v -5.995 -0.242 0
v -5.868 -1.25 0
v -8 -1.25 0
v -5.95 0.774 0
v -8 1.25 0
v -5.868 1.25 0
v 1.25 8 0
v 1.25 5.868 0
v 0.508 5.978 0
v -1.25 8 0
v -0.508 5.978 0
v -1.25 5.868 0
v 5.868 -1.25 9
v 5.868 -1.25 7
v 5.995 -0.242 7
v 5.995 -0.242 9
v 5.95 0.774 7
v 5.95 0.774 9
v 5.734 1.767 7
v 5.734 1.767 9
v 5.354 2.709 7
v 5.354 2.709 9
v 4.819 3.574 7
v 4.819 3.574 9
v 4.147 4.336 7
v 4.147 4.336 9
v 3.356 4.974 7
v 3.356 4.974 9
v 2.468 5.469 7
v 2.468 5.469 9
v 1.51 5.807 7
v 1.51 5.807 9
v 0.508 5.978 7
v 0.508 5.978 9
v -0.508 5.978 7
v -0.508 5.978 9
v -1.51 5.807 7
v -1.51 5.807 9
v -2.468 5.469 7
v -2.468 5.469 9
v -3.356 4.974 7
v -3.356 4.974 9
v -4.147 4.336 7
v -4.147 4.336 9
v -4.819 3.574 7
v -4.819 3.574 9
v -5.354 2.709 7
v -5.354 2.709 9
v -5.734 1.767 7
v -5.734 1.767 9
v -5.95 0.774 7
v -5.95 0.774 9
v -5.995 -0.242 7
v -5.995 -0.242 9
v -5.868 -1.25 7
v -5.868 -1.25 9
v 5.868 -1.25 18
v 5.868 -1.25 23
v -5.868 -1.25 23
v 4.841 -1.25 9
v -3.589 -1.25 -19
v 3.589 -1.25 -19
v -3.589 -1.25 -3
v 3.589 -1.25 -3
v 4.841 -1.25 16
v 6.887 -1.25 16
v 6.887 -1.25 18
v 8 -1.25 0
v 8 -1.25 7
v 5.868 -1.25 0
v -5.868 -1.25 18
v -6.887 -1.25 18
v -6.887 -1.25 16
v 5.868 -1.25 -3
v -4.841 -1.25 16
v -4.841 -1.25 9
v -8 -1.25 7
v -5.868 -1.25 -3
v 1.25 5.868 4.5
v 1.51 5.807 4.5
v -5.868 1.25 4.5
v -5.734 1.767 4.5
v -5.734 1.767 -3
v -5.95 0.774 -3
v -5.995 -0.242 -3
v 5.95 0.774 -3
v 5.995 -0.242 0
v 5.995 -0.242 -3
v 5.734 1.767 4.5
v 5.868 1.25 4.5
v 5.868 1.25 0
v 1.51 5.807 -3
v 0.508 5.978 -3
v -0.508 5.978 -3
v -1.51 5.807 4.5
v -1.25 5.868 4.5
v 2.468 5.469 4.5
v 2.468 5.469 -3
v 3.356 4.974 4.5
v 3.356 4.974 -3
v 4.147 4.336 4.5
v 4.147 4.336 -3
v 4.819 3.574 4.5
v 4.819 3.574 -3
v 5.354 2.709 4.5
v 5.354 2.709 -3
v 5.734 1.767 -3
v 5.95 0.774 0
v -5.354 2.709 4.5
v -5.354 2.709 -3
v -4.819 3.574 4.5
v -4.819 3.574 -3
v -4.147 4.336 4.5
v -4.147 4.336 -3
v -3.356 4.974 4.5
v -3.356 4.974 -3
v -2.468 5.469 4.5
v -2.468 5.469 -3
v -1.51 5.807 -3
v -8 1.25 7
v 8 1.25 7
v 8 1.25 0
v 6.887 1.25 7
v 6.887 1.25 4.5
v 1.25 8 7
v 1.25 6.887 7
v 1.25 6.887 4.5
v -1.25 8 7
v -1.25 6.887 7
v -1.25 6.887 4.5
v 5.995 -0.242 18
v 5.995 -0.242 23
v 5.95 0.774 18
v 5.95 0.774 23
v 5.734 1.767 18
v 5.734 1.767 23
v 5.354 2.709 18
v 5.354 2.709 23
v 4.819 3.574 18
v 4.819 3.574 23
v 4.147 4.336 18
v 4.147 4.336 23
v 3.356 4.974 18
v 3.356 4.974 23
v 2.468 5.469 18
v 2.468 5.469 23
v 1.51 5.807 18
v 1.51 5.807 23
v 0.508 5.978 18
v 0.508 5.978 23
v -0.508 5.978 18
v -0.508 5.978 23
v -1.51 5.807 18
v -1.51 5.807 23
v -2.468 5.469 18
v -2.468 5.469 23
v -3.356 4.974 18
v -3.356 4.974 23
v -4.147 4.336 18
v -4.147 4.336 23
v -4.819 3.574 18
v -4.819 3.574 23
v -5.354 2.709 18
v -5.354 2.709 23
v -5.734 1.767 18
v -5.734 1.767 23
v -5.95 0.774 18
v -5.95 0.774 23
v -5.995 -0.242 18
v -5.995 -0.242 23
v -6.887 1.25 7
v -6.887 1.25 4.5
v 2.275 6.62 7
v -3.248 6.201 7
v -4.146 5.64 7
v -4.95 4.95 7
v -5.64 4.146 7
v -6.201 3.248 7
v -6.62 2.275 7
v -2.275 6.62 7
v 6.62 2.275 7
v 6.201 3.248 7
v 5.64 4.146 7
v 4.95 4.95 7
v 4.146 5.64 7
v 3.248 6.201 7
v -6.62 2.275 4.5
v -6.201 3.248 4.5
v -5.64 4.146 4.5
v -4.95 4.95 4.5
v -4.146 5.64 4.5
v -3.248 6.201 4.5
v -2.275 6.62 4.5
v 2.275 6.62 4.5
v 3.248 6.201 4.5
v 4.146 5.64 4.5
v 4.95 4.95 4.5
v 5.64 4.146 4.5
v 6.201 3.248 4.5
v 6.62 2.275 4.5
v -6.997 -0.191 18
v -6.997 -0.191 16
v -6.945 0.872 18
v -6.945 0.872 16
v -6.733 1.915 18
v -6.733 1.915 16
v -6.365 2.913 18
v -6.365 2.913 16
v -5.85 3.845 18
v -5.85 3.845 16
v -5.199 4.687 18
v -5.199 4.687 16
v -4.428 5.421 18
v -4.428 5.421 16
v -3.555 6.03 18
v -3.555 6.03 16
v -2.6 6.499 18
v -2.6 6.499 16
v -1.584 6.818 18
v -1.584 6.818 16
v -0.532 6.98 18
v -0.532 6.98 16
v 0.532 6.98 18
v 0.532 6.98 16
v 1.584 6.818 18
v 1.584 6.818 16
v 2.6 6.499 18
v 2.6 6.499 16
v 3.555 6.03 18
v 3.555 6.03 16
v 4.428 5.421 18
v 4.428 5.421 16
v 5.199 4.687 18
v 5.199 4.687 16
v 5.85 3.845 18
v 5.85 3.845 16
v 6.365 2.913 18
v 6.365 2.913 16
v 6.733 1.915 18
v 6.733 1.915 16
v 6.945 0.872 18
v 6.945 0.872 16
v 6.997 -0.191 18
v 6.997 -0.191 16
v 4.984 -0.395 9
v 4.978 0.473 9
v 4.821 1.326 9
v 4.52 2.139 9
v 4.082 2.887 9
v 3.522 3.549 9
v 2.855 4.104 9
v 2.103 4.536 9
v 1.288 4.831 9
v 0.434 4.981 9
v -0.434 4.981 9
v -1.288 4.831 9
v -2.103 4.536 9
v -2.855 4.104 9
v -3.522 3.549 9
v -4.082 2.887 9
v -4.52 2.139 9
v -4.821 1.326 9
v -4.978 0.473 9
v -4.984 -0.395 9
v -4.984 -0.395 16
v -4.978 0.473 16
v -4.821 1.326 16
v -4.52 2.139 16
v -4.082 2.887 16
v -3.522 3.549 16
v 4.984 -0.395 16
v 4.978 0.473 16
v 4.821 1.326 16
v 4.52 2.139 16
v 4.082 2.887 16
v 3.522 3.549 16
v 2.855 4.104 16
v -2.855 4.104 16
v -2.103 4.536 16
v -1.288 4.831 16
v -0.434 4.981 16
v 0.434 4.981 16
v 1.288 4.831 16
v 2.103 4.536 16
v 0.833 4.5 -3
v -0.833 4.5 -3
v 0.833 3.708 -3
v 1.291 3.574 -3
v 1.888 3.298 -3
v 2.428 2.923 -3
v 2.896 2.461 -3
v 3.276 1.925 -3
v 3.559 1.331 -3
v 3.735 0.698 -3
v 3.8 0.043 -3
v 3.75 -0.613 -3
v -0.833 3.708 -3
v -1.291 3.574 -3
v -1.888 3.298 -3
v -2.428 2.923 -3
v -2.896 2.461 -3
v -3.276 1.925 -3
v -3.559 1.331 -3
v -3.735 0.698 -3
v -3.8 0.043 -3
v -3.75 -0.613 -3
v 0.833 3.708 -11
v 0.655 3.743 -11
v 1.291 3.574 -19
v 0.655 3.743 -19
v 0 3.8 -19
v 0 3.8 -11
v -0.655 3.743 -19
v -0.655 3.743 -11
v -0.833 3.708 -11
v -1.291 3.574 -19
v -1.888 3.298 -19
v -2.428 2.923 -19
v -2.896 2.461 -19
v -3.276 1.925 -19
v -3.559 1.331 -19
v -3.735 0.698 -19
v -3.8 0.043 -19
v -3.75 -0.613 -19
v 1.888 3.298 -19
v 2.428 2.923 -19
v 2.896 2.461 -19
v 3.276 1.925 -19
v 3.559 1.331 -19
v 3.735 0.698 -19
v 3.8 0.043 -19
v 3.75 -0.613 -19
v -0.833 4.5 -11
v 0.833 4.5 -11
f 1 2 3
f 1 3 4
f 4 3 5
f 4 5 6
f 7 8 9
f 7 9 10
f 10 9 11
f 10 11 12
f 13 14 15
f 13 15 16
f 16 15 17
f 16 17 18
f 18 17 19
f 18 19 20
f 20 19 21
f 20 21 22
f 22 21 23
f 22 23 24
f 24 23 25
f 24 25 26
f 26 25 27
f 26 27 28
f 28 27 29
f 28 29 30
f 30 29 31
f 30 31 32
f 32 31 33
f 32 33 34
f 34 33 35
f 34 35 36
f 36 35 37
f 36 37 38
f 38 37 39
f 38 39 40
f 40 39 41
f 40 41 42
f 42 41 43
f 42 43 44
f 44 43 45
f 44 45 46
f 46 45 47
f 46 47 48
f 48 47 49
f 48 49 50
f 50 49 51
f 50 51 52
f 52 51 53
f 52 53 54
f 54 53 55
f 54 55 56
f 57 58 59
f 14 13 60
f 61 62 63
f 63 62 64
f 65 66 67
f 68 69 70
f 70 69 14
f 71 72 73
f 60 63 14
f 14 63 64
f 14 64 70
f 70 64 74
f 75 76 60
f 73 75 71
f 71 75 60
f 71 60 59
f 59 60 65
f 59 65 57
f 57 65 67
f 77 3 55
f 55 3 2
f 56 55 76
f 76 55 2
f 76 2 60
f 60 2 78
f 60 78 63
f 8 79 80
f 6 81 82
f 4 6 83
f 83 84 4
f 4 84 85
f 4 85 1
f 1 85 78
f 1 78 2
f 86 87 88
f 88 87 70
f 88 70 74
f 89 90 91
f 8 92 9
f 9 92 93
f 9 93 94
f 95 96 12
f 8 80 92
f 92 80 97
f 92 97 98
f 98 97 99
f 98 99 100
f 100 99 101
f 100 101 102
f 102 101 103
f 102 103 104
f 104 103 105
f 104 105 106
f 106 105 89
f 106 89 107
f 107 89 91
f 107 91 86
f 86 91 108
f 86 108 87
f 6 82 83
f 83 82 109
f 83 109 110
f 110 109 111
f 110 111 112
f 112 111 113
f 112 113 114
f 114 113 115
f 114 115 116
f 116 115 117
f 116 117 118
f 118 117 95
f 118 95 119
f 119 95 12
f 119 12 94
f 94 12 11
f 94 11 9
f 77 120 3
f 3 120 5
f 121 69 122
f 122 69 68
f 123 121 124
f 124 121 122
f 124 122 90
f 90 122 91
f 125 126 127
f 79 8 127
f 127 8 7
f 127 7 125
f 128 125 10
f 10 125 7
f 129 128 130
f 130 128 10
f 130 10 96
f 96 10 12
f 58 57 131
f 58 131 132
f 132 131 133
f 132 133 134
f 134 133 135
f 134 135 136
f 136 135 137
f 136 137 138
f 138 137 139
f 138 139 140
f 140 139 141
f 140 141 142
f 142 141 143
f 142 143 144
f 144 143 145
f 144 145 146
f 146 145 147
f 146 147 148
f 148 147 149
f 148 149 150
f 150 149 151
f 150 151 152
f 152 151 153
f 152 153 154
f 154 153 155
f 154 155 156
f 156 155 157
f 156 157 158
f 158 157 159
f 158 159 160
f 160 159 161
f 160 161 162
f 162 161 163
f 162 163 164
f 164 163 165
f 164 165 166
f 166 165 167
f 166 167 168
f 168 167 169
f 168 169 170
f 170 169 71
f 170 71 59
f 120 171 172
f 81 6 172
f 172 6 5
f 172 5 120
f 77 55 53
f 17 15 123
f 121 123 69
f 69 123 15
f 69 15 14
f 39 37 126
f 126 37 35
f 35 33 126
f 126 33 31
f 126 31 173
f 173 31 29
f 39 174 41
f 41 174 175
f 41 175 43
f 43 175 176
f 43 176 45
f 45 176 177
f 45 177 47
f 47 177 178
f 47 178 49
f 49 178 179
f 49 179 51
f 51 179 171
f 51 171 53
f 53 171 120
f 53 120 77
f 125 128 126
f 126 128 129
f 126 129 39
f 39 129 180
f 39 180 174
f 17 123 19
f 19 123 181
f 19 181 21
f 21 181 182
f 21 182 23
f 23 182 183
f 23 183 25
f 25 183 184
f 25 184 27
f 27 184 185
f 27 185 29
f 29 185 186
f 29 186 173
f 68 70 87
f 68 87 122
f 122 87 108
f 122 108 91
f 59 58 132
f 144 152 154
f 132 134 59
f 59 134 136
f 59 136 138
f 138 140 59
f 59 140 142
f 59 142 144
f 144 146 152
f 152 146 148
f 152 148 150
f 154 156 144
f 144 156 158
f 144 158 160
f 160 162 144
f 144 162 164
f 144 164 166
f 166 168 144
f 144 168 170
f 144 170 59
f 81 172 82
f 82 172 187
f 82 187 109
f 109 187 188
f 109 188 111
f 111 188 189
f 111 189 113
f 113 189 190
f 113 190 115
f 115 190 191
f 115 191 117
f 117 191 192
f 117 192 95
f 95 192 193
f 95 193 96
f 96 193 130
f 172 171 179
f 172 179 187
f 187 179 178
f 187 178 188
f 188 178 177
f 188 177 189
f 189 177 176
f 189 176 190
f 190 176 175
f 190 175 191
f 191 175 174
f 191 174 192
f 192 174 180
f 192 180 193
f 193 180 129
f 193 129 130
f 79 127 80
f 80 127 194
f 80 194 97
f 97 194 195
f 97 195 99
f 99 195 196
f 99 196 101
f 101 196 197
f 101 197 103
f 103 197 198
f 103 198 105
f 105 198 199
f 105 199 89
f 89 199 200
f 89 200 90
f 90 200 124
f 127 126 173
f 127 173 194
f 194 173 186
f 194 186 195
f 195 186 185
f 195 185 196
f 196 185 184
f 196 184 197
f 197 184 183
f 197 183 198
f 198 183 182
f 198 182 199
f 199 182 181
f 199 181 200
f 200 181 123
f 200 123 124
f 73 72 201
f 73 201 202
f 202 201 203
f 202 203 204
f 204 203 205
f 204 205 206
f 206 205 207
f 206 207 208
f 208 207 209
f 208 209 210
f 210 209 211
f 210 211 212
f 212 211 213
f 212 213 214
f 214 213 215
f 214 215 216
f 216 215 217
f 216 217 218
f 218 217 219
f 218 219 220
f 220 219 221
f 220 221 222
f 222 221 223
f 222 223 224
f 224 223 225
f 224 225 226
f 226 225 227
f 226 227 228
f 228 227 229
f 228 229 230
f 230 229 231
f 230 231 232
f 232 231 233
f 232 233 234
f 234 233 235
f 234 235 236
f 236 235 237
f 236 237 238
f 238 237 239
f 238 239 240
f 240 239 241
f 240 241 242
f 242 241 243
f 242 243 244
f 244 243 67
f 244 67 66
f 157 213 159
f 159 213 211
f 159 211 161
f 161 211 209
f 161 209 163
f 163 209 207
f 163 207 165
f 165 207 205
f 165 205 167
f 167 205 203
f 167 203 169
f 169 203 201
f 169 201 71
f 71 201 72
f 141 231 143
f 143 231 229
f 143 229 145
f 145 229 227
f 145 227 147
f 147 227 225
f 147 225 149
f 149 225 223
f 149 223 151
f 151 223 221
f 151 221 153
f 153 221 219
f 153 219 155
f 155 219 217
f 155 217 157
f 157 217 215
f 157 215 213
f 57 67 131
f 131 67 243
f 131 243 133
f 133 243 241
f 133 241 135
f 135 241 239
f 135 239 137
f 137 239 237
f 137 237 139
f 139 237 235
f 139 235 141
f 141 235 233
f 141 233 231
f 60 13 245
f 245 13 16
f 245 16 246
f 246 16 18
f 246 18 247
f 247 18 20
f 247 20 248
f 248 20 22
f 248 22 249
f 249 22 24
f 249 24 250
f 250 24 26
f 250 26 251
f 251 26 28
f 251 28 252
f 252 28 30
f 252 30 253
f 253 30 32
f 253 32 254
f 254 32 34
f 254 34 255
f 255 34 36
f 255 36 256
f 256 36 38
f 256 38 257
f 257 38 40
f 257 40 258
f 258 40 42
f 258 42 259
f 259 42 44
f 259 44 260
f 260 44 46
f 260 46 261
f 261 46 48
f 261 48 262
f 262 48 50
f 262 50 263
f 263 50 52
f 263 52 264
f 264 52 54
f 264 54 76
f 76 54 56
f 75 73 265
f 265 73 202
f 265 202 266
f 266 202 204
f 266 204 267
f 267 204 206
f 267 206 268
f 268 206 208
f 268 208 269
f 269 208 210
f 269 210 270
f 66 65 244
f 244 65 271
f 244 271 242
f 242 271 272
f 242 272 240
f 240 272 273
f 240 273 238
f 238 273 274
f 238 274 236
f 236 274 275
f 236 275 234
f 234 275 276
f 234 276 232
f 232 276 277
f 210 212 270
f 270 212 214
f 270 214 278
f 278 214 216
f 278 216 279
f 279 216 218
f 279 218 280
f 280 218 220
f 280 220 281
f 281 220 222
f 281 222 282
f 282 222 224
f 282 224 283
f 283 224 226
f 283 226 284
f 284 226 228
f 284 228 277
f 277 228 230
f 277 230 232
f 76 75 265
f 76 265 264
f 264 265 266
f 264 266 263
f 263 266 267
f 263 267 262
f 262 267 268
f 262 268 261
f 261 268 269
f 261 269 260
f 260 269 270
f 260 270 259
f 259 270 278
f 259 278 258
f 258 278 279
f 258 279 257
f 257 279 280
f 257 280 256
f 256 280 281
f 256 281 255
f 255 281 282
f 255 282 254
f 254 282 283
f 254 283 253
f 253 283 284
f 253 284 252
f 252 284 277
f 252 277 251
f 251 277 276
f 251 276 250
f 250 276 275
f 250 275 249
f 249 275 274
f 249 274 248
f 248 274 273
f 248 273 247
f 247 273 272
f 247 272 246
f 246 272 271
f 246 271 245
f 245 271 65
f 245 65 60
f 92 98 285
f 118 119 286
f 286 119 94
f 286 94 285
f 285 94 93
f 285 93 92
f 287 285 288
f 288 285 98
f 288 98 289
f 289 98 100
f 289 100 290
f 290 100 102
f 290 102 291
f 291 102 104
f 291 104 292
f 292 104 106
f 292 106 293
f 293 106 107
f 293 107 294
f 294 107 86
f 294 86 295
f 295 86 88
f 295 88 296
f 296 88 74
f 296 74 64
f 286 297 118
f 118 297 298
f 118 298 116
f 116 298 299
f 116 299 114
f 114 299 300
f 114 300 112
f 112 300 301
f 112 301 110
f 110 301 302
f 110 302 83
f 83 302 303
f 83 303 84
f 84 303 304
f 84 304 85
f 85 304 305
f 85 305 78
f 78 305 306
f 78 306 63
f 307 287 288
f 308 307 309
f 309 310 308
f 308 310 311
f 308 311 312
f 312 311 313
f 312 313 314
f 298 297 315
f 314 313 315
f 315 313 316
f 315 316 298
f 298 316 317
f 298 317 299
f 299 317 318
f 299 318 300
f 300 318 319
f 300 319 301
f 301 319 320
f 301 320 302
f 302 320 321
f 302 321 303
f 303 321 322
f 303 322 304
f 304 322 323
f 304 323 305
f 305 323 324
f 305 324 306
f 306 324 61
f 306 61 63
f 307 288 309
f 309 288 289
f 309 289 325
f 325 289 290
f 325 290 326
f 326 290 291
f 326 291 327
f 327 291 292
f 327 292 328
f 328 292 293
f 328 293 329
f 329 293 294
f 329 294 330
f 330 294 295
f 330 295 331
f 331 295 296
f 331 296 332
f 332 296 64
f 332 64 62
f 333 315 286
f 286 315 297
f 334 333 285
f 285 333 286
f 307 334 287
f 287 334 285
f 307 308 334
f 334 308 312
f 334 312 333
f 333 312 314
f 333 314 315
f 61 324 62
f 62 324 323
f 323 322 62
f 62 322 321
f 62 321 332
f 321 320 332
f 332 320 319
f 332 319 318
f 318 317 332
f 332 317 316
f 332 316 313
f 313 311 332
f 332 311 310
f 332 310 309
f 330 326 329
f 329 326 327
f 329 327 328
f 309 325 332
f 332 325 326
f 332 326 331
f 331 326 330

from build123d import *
from build123d.topology import SkipClean

# Parameters (mm, degrees)
BOSS_EXTRUDE1_DEPTH = 7
BOSS_EXTRUDE2_DEPTH = 16
BOSS_EXTRUDE3_START = -16
BOSS_EXTRUDE3_DEPTH = 2.5
BOSS_EXTRUDE4_START = -5
BOSS_EXTRUDE4_DEPTH = 2.5
CUT_EXTRUDE1_START  = -7
SKETCH7_R           = 7.581765893
CUT_EXTRUDE1_DEPTH  = 7
BOSS_EXTRUDE5_START = 3
BOSS_EXTRUDE5_DEPTH = 3
BOSS_EXTRUDE6_DEPTH = 8
BOSS_EXTRUDE7_DEPTH = 8


with BuildPart() as part:
    # Sketch1 → Boss-Extrude1 (new body)
    with BuildSketch(Plane.XY):
        with BuildLine():
            Line((8, 1.25), (5.868347297, 1.25))
            ThreePointArc((5.868347297, 1.25), (4.242640687, 4.242640687), (1.25, 5.868347297))
            Line((1.25, 5.868347297), (1.25, 8))
            Line((1.25, 8), (-1.25, 8))
            Line((-1.25, 8), (-1.25, 5.868347297))
            ThreePointArc((-1.25, 5.868347297), (-4.242640687, 4.242640687), (-5.868347297, 1.25))
            Line((-5.868347297, 1.25), (-8, 1.25))
            Line((-8, 1.25), (-8, -1.25))
            Line((-8, -1.25), (8, -1.25))
            Line((8, -1.25), (8, 1.25))
        make_face()
    extrude(amount=BOSS_EXTRUDE1_DEPTH)

    # Sketch3 → Boss-Extrude2 (add)
    with BuildSketch(Plane.XY.offset(7)):
        with BuildLine():
            Line((-5.868347297, -1.25), (5.868347297, -1.25))
            ThreePointArc((5.868347297, -1.25), (0, 6), (-5.868347297, -1.25))
        make_face()
    extrude(amount=BOSS_EXTRUDE2_DEPTH)

    # Sketch5 → Boss-Extrude3 (add)
    with BuildSketch(Plane.XY.offset(23).offset(BOSS_EXTRUDE3_START)):
        with BuildLine():
            Line((-6.887488657, -1.25), (6.887488657, -1.25))
            ThreePointArc((6.887488657, -1.25), (0, 7), (-6.887488657, -1.25))
        make_face()
    extrude(amount=-BOSS_EXTRUDE3_DEPTH)

    # Sketch6 → Boss-Extrude4 (add)
    with BuildSketch(Plane.XY.offset(23).offset(BOSS_EXTRUDE4_START)):
        with BuildLine():
            Line((-6.887488657, -1.25), (6.887488657, -1.25))
            ThreePointArc((6.887488657, -1.25), (0, 7), (-6.887488657, -1.25))
        make_face()
    extrude(amount=-BOSS_EXTRUDE4_DEPTH)

    # Sketch7 → Cut-Extrude1 (cut)
    with BuildSketch(Plane.XY.offset(23).offset(CUT_EXTRUDE1_START)):
        Circle(SKETCH7_R)
        with BuildLine():
            Line((-4.841229183, -1.25), (4.841229183, -1.25))
            ThreePointArc((4.841229183, -1.25), (0, 5), (-4.841229183, -1.25))
        make_face(mode=Mode.SUBTRACT)
    extrude(amount=-CUT_EXTRUDE1_DEPTH, mode=Mode.SUBTRACT)

    # Sketch8 → Boss-Extrude5 (add)
    with SkipClean():  # the faces are left unmerged after this step: merging them gives an invalid solid
        with BuildSketch(Plane(origin=(0, 0, 0), x_dir=(-1, 0, 0), z_dir=(0, 0, -1)).offset(BOSS_EXTRUDE5_START)):
            with BuildLine():
                Line((-5.868347297, -1.25), (5.868347297, -1.25))
                ThreePointArc((5.868347297, -1.25), (0, 6), (-5.868347297, -1.25))
            make_face()
        extrude(amount=-BOSS_EXTRUDE5_DEPTH)

    # Sketch9 → Boss-Extrude6 (add)
    with SkipClean():  # the faces are left unmerged after this step: merging them gives an invalid solid
        with BuildSketch(Plane(origin=(0, 0, -3), x_dir=(-1, 0, 0), z_dir=(0, 0, -1))):
            with BuildLine():
                Line((-3.588523373, -1.25), (3.588523373, -1.25))
                ThreePointArc((3.588523373, -1.25), (3.321506513, 1.845967087), (0.833333333, 3.707499906))
                Line((0.833333333, 3.707499906), (0.833333333, 4.5))
                Line((0.833333333, 4.5), (-0.833333333, 4.5))
                Line((-0.833333333, 4.5), (-0.833333333, 3.707499906))
                ThreePointArc((-0.833333333, 3.707499906), (-3.321506513, 1.845967087), (-3.588523373, -1.25))
            make_face()
        extrude(amount=BOSS_EXTRUDE6_DEPTH)

    # Sketch10 → Boss-Extrude7 (add)
    with SkipClean():  # the faces are left unmerged after this step: merging them gives an invalid solid
        with BuildSketch(Plane(origin=(0, 0, -11), x_dir=(-1, 0, 0), z_dir=(0, 0, -1))):
            with BuildLine():
                Line((-3.588523373, -1.25), (3.588523373, -1.25))
                ThreePointArc((3.588523373, -1.25), (0, 3.8), (-3.588523373, -1.25))
            make_face()
        extrude(amount=BOSS_EXTRUDE7_DEPTH)


solid = part.part
